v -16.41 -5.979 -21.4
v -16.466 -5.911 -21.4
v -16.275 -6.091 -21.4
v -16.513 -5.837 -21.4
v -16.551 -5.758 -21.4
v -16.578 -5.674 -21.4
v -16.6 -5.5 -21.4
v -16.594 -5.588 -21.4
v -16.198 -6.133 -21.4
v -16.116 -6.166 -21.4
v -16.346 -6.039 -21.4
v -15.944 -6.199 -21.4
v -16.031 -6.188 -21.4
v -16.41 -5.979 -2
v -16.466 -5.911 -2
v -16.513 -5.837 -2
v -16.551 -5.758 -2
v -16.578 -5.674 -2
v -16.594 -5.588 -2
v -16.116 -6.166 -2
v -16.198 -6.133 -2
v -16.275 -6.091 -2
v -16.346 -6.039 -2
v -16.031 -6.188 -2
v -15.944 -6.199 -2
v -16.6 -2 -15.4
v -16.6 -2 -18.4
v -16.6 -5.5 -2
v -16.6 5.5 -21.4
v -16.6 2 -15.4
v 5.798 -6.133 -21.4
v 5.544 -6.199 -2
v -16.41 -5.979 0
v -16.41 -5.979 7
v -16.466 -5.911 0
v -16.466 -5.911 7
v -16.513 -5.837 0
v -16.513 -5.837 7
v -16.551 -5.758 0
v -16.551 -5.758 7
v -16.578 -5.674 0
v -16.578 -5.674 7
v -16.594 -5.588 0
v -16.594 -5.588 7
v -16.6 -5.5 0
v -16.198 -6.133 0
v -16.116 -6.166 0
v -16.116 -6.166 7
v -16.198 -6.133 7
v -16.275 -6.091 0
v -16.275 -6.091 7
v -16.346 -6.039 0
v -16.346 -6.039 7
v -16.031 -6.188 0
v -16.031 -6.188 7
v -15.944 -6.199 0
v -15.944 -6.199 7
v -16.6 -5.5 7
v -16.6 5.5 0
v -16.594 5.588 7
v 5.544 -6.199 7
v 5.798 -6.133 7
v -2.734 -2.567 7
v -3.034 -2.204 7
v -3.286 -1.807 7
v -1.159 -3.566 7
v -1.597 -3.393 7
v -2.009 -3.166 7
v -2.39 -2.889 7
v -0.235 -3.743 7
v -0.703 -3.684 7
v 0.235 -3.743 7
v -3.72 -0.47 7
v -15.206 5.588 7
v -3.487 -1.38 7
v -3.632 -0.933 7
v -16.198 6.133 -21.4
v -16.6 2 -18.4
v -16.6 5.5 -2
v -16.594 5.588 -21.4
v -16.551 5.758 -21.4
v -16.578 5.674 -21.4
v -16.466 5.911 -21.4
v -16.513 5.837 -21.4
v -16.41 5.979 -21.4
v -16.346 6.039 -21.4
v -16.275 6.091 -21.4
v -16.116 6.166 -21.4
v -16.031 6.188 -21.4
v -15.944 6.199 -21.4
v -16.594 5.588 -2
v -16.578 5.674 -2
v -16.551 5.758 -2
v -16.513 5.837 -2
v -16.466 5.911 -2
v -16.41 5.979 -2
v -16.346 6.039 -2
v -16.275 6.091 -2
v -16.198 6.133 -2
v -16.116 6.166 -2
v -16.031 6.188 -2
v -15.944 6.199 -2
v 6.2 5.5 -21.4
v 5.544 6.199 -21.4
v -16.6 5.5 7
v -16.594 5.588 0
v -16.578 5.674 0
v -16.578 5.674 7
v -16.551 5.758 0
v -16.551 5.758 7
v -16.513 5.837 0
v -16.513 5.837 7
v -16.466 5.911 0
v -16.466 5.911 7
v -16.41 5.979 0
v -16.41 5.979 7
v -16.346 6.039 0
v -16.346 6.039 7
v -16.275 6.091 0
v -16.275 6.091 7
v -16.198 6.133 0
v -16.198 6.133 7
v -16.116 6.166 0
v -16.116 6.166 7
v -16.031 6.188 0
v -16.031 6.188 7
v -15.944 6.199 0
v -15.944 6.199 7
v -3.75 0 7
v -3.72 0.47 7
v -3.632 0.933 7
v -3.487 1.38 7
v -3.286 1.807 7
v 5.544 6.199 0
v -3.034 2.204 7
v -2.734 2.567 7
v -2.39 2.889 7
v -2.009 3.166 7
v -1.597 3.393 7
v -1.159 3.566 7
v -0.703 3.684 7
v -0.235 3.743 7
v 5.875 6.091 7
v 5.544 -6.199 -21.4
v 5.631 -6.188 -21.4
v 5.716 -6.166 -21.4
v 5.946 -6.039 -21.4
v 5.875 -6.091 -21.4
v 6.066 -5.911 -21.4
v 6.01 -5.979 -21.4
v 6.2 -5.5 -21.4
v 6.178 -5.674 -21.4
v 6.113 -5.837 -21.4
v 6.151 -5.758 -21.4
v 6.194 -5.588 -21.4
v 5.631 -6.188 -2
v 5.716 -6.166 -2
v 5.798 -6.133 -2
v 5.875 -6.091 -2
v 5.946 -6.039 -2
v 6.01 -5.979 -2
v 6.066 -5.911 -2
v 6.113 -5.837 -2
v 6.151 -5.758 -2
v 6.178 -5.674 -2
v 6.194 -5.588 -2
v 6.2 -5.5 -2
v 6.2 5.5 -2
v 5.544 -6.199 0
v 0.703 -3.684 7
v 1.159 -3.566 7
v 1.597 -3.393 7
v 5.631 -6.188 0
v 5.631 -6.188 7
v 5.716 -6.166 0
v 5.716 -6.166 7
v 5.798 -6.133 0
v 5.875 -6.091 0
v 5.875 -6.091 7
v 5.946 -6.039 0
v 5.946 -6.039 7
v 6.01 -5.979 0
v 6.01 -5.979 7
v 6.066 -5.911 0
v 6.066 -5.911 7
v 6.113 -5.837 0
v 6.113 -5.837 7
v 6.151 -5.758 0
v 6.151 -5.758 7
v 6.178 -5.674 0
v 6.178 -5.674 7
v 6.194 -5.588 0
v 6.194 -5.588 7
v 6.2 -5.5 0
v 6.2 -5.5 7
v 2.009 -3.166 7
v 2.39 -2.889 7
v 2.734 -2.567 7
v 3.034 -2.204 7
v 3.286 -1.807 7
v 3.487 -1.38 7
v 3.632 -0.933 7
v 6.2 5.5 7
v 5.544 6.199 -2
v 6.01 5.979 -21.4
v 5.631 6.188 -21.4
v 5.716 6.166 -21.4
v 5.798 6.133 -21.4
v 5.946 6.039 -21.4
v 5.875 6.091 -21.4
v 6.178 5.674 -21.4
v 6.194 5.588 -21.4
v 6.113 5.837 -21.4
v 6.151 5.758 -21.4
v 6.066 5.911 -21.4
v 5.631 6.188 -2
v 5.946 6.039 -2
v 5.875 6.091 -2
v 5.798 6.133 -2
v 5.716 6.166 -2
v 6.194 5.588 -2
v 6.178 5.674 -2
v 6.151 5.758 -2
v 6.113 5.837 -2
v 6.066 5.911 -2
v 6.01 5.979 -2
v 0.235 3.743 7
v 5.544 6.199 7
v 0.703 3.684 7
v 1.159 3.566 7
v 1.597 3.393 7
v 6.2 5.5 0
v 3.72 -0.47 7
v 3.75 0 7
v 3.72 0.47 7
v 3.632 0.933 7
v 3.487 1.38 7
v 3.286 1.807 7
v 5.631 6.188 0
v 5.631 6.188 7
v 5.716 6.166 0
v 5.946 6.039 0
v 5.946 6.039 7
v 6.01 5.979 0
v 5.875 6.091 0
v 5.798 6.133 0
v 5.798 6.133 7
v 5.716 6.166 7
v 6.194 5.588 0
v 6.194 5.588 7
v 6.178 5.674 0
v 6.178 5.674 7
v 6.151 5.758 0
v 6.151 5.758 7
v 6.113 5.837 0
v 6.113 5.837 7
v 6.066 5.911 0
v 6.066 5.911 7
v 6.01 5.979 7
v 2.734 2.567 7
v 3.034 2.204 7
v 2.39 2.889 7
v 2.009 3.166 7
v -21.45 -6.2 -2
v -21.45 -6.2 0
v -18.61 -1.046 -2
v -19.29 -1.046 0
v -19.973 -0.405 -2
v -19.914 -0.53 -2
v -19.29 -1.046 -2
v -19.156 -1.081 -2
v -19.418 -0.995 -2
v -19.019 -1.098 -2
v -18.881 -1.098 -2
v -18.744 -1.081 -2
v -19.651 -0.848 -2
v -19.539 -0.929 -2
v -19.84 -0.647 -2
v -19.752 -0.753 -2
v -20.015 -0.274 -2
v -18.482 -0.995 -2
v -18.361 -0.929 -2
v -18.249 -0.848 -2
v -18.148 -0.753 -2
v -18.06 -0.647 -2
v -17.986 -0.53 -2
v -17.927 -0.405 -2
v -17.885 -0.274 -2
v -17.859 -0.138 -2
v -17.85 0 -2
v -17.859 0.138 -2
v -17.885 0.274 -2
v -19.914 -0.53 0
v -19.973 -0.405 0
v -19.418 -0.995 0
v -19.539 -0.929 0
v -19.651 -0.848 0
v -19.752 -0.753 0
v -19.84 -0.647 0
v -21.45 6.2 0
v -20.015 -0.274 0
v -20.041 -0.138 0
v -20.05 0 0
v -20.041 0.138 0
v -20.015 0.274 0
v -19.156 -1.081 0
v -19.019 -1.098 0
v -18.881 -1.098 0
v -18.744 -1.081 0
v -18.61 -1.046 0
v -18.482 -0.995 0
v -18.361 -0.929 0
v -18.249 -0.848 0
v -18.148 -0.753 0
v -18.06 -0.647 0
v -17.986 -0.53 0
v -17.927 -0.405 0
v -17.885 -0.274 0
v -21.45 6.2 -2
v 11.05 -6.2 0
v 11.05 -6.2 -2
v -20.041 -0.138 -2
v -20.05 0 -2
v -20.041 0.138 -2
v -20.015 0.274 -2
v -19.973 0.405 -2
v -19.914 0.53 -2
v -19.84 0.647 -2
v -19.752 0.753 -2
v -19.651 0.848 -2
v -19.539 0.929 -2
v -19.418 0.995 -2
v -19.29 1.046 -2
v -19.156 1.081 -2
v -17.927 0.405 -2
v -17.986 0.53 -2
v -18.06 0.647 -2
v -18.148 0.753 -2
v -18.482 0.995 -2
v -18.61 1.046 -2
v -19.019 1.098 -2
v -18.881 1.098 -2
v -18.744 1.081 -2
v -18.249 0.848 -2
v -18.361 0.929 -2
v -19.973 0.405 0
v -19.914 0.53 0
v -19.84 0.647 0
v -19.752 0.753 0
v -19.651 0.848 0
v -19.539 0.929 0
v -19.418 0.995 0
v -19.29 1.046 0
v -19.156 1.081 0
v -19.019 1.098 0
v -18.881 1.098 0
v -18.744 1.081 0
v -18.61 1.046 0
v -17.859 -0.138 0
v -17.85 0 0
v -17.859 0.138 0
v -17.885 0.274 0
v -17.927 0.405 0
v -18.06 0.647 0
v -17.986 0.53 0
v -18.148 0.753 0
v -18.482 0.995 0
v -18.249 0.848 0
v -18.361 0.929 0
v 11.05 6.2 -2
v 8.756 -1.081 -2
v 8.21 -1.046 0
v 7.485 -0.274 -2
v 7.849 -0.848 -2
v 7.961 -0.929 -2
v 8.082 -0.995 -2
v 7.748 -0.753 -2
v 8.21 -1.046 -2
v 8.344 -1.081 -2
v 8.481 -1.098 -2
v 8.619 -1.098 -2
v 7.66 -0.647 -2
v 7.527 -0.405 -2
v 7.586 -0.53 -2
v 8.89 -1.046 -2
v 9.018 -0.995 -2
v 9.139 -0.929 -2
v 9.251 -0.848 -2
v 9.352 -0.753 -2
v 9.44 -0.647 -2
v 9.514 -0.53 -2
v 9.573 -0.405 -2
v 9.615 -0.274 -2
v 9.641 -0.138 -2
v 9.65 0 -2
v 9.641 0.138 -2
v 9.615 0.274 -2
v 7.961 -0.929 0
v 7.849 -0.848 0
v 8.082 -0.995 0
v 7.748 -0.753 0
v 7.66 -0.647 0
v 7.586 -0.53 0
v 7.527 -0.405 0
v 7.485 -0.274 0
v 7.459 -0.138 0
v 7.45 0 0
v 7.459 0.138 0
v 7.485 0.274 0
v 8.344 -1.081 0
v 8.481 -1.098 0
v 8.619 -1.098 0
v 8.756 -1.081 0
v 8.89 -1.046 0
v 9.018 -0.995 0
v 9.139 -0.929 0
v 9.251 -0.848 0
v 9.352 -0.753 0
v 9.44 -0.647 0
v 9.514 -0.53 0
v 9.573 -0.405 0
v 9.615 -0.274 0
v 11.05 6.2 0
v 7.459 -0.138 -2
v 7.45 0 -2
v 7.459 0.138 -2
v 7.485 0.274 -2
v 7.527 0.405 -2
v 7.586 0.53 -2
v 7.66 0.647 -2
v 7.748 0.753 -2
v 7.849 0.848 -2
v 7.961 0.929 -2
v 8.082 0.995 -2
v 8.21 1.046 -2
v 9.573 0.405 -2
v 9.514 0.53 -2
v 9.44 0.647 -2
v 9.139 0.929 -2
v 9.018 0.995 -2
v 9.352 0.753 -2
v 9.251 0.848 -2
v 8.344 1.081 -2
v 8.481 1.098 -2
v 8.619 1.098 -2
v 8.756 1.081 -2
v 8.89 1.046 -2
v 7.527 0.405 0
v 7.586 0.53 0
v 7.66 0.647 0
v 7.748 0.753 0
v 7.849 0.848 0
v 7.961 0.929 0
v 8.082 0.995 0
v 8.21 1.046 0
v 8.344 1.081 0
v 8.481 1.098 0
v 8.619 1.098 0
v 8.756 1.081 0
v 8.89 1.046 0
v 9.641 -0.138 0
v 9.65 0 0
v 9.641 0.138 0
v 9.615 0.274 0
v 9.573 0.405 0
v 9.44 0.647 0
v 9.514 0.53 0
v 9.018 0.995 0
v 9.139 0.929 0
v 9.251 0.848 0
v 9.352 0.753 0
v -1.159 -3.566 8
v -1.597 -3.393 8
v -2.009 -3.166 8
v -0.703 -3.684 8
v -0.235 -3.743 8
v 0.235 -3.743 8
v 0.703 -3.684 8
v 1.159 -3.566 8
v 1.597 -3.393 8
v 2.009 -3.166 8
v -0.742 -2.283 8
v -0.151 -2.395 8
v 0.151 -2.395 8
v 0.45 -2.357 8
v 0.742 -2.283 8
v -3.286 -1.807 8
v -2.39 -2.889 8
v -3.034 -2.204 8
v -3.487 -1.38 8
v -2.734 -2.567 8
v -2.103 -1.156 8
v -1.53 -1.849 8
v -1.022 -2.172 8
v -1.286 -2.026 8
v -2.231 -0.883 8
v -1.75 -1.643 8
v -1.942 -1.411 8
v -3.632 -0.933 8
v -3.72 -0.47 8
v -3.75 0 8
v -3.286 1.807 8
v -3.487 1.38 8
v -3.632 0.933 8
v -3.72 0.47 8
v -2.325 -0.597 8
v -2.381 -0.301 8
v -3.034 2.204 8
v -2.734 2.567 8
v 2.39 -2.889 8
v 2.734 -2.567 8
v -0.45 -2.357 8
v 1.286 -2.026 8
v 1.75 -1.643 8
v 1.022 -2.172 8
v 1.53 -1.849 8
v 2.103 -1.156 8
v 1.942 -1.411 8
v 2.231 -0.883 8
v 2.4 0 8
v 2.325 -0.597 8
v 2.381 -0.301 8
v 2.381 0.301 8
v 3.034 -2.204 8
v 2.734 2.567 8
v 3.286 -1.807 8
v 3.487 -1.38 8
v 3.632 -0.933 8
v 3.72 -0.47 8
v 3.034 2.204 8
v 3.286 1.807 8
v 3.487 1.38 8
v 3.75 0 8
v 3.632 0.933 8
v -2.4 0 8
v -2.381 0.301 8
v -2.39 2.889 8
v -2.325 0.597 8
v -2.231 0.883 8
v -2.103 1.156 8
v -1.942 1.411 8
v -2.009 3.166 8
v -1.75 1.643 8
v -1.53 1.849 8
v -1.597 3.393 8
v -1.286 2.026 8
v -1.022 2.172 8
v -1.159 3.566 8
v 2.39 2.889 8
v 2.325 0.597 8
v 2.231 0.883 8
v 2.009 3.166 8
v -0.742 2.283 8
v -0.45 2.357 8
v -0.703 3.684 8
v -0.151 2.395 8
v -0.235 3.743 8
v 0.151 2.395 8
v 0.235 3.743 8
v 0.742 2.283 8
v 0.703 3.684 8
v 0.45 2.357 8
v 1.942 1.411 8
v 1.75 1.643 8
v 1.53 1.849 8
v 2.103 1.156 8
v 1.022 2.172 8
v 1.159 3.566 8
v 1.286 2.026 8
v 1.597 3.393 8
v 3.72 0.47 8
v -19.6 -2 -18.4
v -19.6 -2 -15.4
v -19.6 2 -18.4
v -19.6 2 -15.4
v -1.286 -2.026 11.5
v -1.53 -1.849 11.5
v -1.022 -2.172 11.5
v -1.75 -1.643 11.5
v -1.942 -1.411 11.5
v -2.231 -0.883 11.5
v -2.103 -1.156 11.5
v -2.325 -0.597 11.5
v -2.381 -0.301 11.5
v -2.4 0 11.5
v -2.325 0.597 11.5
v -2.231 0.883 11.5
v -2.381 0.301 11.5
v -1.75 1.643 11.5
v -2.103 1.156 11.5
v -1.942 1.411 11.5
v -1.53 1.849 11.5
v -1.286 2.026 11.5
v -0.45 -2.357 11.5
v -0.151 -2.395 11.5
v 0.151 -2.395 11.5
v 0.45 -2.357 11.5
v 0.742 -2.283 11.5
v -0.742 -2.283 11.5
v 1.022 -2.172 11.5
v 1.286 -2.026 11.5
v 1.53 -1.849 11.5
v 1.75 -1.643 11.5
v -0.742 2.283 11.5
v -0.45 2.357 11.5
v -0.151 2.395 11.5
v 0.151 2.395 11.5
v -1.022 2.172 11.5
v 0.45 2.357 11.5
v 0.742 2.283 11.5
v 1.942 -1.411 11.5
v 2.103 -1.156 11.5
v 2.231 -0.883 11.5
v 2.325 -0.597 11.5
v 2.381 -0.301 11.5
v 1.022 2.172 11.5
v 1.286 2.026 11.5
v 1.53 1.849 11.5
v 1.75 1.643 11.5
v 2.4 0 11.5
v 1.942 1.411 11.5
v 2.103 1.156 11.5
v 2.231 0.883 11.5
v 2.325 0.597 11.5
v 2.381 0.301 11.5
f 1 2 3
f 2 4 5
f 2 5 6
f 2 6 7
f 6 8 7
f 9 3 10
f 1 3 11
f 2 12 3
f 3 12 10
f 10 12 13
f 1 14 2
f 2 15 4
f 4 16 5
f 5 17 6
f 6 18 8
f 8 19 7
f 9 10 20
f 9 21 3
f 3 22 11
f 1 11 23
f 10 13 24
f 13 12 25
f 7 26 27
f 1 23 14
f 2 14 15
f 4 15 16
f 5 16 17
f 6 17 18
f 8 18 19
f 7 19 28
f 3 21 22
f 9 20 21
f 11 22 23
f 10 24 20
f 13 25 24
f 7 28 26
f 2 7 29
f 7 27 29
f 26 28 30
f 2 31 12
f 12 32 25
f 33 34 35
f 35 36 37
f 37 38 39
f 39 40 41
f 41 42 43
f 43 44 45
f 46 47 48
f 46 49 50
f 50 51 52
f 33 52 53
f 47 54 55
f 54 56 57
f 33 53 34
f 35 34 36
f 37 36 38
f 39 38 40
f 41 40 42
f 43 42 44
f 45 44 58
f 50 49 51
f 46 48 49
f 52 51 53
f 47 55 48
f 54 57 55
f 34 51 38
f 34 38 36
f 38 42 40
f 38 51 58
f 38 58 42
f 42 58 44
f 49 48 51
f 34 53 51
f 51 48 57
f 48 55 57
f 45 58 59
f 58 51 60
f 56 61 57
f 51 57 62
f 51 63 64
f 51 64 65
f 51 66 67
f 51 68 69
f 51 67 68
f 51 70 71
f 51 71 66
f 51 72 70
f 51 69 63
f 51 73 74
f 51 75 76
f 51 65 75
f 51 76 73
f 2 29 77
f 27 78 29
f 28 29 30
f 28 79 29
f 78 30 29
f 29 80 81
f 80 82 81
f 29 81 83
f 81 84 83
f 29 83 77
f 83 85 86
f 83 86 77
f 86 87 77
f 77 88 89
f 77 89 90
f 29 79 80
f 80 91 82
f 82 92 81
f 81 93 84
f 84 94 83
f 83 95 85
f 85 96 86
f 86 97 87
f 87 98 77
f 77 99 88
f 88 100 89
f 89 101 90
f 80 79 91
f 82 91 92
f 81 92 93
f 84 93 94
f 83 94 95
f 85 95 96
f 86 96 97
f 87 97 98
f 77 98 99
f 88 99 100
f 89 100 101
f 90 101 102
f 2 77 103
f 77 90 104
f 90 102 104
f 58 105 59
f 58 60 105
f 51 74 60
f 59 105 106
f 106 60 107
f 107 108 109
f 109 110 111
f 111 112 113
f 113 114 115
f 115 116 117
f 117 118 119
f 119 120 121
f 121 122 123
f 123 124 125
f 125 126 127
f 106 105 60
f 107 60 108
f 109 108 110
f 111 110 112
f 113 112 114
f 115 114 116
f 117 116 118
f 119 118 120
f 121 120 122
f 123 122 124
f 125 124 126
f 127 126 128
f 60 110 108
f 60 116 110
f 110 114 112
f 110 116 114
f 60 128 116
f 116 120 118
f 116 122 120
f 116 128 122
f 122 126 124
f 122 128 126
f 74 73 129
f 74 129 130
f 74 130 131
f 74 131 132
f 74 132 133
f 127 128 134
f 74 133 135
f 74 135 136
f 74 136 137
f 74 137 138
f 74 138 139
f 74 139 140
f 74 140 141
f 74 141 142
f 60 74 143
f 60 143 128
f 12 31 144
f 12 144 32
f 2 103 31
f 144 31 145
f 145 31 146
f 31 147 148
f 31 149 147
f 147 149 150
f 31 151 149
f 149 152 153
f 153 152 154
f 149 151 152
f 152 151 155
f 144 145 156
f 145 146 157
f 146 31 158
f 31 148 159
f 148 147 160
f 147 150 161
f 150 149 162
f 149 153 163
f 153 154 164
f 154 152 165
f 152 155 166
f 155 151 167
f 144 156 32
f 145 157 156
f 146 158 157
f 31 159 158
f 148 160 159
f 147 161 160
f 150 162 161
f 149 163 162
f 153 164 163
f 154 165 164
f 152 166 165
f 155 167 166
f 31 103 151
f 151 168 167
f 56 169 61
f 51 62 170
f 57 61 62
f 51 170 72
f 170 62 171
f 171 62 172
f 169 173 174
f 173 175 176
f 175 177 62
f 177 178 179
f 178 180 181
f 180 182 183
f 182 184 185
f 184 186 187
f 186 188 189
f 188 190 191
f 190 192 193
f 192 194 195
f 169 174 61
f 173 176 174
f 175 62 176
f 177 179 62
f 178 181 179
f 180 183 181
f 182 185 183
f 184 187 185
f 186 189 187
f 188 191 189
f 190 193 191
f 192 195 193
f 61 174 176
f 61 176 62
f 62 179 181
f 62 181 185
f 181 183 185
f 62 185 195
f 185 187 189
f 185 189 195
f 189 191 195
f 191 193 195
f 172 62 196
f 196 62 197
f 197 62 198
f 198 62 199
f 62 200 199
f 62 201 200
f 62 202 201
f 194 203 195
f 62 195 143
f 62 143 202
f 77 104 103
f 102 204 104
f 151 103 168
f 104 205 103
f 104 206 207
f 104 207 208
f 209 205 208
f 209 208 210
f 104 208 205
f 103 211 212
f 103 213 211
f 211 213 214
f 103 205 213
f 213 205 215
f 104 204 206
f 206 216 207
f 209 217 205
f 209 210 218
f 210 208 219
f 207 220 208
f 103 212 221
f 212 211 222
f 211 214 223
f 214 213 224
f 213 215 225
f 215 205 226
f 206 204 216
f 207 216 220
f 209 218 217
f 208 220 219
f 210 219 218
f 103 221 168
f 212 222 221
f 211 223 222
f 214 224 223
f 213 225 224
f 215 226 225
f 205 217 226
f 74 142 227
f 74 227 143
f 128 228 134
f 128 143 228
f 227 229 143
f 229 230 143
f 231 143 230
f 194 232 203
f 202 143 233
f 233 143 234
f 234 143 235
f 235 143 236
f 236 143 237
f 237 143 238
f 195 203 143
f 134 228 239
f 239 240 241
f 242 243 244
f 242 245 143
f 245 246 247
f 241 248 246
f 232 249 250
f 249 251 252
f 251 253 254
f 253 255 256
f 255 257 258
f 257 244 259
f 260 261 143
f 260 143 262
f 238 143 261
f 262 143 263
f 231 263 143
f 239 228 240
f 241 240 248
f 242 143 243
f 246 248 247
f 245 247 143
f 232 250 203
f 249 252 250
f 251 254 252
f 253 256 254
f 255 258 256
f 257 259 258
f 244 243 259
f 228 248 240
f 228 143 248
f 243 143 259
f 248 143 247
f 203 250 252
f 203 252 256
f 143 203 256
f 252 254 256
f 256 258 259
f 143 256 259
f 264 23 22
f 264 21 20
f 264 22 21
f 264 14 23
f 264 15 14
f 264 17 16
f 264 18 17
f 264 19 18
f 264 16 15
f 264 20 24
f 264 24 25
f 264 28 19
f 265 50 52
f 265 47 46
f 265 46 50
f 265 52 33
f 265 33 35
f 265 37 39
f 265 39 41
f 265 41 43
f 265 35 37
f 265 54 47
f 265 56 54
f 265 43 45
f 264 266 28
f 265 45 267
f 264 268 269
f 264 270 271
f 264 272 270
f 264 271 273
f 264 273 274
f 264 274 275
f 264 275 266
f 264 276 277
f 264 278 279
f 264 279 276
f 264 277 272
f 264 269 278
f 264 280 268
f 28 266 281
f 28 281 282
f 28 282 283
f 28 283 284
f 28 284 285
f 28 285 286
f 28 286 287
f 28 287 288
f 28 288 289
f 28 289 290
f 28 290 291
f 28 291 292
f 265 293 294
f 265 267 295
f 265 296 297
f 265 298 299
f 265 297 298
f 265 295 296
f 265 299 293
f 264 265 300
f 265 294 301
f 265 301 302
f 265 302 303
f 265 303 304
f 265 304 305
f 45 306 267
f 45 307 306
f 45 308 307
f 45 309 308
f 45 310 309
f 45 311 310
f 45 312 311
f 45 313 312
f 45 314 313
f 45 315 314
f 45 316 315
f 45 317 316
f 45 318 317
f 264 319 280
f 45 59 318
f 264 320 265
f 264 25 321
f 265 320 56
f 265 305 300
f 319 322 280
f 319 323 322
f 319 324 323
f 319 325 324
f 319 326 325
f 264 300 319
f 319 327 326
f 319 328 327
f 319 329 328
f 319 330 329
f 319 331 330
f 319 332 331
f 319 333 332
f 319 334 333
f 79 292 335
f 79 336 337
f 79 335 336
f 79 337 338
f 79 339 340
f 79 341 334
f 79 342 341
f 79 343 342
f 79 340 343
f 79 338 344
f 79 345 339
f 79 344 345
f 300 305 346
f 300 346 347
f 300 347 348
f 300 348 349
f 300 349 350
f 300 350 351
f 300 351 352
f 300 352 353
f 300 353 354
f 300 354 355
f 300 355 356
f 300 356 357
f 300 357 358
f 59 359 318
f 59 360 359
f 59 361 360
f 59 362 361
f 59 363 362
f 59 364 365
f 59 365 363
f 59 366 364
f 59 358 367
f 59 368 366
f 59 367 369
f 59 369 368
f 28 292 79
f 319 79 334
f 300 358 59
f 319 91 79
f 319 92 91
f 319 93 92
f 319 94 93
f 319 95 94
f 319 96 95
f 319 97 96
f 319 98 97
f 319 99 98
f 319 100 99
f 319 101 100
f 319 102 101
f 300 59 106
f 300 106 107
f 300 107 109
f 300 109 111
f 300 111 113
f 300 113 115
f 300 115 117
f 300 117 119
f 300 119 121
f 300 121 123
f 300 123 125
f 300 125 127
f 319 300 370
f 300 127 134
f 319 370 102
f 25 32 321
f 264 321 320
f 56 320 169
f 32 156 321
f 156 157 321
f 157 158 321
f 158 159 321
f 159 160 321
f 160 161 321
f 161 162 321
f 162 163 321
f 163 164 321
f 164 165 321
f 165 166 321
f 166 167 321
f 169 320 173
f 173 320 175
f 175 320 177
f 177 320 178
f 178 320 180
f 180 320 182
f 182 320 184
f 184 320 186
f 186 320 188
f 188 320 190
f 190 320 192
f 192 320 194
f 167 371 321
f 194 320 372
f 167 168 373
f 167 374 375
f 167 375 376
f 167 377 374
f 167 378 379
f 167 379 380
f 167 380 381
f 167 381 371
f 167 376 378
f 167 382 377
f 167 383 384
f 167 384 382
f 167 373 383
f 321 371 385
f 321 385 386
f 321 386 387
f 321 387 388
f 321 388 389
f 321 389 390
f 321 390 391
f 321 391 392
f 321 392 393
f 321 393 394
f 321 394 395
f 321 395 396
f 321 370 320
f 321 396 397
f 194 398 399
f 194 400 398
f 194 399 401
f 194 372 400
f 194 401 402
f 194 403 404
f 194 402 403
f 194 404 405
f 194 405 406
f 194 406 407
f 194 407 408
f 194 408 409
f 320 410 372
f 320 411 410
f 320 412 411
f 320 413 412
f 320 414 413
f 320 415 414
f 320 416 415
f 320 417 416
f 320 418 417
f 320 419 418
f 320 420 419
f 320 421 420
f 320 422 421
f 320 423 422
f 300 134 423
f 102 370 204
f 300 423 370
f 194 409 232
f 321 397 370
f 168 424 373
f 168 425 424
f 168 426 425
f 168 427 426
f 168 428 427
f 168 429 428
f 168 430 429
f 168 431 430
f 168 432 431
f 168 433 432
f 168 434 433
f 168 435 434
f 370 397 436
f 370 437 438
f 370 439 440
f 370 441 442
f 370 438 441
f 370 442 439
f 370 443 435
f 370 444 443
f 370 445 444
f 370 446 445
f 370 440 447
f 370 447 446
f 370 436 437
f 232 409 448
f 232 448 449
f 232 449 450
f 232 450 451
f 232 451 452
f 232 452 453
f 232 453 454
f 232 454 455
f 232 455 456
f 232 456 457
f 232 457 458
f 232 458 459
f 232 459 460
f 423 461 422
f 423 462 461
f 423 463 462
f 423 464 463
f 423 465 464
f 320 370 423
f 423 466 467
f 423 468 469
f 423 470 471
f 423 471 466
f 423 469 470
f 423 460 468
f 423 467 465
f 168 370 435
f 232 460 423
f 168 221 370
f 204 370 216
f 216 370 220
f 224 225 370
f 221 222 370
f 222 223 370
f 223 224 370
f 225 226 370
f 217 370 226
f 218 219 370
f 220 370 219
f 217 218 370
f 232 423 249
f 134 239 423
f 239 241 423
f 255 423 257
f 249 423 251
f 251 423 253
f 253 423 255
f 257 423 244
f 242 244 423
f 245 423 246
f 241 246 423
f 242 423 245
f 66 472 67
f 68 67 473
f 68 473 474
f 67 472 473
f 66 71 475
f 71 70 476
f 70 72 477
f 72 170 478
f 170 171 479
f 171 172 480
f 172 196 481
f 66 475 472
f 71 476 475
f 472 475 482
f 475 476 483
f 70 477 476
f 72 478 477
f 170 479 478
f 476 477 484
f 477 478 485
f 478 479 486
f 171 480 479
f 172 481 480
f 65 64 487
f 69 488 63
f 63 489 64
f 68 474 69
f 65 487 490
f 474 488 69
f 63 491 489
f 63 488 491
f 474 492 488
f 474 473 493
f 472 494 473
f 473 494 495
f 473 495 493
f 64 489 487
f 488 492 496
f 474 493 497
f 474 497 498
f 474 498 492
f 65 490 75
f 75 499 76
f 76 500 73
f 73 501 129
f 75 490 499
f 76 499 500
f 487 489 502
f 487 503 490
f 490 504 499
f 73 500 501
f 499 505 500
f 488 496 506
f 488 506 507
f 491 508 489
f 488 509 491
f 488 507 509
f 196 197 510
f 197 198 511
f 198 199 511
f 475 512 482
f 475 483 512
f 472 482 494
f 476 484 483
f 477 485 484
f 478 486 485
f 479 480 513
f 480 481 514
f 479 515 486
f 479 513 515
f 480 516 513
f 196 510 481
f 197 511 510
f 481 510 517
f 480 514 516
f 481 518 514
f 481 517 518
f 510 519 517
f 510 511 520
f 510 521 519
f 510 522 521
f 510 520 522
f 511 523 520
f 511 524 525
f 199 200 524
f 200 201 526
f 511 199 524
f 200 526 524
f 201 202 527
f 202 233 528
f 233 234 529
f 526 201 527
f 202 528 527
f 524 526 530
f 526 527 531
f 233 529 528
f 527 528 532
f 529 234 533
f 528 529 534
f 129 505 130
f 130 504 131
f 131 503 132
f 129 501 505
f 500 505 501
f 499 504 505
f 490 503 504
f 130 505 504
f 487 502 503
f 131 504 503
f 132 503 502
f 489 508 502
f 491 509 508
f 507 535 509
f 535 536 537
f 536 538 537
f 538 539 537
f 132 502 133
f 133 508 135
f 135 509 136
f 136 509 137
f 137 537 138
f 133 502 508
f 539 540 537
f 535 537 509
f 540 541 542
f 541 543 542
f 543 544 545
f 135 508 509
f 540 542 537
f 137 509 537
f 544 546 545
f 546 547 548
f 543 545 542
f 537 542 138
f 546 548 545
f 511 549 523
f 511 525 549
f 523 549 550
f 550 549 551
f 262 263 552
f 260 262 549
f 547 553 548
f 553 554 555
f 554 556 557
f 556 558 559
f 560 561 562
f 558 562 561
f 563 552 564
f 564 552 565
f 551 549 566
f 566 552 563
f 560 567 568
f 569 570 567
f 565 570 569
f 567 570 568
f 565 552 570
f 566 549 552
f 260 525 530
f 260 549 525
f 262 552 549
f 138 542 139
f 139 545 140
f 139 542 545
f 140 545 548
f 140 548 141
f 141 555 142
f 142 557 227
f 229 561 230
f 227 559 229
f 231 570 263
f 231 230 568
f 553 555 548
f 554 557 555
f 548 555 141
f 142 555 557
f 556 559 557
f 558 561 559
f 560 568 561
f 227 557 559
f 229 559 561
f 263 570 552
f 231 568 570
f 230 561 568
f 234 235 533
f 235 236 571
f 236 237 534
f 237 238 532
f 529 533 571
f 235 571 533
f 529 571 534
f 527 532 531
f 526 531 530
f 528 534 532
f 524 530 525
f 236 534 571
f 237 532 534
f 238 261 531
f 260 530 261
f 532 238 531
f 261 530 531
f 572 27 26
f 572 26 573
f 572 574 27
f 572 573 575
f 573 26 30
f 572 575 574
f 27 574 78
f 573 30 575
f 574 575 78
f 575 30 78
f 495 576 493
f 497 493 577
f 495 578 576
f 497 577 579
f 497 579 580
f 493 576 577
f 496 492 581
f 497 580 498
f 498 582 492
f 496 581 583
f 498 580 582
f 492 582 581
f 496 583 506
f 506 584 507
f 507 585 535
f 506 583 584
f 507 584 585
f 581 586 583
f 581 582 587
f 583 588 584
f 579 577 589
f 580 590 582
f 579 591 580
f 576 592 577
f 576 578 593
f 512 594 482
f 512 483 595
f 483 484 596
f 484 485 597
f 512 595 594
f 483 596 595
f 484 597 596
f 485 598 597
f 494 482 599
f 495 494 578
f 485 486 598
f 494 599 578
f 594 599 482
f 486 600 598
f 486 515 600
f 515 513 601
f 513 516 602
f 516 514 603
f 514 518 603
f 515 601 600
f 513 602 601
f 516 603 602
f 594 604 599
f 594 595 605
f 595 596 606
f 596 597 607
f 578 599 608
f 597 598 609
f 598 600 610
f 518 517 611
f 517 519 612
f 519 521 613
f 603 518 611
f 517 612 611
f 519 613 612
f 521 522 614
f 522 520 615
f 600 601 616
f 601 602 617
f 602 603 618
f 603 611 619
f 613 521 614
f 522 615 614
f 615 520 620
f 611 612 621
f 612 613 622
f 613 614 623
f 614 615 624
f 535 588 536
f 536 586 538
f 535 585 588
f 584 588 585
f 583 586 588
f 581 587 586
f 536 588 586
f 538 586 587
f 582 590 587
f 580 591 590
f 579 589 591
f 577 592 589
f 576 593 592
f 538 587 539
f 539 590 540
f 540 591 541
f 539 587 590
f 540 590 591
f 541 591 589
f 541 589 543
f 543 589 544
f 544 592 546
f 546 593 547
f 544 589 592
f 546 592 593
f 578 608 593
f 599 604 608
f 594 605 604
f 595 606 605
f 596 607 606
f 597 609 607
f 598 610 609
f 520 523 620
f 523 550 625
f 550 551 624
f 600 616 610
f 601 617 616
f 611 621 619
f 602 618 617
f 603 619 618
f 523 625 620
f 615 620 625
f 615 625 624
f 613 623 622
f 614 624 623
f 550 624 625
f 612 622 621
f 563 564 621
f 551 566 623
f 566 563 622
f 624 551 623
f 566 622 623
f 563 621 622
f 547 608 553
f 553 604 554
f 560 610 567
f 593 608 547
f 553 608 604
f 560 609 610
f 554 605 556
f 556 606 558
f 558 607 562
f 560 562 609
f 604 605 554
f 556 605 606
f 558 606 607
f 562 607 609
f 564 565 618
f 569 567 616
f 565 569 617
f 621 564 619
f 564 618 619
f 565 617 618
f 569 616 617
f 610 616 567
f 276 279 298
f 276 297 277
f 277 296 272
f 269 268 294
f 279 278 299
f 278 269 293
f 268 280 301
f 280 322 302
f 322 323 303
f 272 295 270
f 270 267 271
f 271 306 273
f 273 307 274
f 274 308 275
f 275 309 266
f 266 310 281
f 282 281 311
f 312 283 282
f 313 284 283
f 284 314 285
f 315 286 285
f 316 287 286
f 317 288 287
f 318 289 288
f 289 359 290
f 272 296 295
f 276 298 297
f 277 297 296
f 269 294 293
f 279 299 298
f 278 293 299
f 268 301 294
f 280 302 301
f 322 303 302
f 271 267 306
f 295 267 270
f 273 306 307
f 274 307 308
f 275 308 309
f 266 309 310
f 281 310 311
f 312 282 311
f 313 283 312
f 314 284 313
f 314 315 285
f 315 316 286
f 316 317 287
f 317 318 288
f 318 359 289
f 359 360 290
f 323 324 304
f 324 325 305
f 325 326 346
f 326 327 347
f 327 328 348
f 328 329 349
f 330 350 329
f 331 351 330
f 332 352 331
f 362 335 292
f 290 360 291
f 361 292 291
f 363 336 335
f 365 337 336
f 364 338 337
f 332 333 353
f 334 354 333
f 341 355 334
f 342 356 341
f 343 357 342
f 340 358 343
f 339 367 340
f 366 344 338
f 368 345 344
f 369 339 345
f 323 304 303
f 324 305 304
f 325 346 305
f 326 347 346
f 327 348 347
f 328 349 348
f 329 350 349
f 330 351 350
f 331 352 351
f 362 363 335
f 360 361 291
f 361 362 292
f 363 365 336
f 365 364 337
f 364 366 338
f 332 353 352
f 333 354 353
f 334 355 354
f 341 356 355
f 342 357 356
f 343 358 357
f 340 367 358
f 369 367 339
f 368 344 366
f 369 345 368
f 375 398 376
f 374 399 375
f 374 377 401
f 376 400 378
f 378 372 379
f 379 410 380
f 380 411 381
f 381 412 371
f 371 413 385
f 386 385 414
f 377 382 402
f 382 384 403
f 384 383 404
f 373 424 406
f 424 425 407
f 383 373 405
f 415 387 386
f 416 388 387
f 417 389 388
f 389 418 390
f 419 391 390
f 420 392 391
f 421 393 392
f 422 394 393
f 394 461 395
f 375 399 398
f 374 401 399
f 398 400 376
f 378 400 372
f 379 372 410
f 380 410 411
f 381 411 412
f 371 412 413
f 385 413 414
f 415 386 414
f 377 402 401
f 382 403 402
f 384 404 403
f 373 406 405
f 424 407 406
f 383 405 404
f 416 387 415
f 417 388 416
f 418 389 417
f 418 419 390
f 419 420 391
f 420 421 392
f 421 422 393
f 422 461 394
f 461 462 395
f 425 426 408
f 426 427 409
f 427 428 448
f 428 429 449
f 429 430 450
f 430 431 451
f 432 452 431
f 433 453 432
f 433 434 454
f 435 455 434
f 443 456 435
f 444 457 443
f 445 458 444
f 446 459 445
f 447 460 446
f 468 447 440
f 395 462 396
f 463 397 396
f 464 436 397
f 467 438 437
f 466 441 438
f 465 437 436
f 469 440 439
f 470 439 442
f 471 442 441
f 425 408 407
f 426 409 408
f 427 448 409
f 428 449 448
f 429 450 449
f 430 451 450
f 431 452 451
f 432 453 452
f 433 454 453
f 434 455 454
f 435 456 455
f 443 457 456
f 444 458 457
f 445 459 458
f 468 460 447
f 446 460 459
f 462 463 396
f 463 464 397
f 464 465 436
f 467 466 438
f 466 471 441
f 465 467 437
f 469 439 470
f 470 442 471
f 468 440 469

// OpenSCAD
$fn = 50;

difference() {
	union() {
		translate(v = [-5.2, 0, -21.4]) {
			hull() {
				translate(v = [-10.700000000000001, 5.5, 0]) {
					cylinder(h = 28.4, r = 0.7);
				}
				translate(v = [10.700000000000001, 5.5, 0]) {
					cylinder(h = 28.4, r = 0.7);
				}
				translate(v = [-10.700000000000001, -5.5, 0]) {
					cylinder(h = 28.4, r = 0.7);
				}
				translate(v = [10.700000000000001, -5.5, 0]) {
					cylinder(h = 28.4, r = 0.7);
				}
			}
		}
		translate(v = [-21.45, -6.2, -2]) {
			cube(size = [32.5, 12.4, 2]);
		}
		translate(v = [0, 0, 7.0]) {
			cylinder(h = 1, r = 3.75);
		}
		translate(v = [-19.6, -2.0, -18.4]) {
			cube(size = [4, 4, 3]);
		}
		translate(v = [0, 0, 8.0]) {
			cylinder(h = 3.5, r = 2.4);
		}
	}
	union() {
		translate(v = [-18.95, 0, -4]) {
			cylinder(h = 5, r = 1.1);
		}
		translate(v = [8.55, 0, -4]) {
			cylinder(h = 5, r = 1.1);
		}
	}
}
